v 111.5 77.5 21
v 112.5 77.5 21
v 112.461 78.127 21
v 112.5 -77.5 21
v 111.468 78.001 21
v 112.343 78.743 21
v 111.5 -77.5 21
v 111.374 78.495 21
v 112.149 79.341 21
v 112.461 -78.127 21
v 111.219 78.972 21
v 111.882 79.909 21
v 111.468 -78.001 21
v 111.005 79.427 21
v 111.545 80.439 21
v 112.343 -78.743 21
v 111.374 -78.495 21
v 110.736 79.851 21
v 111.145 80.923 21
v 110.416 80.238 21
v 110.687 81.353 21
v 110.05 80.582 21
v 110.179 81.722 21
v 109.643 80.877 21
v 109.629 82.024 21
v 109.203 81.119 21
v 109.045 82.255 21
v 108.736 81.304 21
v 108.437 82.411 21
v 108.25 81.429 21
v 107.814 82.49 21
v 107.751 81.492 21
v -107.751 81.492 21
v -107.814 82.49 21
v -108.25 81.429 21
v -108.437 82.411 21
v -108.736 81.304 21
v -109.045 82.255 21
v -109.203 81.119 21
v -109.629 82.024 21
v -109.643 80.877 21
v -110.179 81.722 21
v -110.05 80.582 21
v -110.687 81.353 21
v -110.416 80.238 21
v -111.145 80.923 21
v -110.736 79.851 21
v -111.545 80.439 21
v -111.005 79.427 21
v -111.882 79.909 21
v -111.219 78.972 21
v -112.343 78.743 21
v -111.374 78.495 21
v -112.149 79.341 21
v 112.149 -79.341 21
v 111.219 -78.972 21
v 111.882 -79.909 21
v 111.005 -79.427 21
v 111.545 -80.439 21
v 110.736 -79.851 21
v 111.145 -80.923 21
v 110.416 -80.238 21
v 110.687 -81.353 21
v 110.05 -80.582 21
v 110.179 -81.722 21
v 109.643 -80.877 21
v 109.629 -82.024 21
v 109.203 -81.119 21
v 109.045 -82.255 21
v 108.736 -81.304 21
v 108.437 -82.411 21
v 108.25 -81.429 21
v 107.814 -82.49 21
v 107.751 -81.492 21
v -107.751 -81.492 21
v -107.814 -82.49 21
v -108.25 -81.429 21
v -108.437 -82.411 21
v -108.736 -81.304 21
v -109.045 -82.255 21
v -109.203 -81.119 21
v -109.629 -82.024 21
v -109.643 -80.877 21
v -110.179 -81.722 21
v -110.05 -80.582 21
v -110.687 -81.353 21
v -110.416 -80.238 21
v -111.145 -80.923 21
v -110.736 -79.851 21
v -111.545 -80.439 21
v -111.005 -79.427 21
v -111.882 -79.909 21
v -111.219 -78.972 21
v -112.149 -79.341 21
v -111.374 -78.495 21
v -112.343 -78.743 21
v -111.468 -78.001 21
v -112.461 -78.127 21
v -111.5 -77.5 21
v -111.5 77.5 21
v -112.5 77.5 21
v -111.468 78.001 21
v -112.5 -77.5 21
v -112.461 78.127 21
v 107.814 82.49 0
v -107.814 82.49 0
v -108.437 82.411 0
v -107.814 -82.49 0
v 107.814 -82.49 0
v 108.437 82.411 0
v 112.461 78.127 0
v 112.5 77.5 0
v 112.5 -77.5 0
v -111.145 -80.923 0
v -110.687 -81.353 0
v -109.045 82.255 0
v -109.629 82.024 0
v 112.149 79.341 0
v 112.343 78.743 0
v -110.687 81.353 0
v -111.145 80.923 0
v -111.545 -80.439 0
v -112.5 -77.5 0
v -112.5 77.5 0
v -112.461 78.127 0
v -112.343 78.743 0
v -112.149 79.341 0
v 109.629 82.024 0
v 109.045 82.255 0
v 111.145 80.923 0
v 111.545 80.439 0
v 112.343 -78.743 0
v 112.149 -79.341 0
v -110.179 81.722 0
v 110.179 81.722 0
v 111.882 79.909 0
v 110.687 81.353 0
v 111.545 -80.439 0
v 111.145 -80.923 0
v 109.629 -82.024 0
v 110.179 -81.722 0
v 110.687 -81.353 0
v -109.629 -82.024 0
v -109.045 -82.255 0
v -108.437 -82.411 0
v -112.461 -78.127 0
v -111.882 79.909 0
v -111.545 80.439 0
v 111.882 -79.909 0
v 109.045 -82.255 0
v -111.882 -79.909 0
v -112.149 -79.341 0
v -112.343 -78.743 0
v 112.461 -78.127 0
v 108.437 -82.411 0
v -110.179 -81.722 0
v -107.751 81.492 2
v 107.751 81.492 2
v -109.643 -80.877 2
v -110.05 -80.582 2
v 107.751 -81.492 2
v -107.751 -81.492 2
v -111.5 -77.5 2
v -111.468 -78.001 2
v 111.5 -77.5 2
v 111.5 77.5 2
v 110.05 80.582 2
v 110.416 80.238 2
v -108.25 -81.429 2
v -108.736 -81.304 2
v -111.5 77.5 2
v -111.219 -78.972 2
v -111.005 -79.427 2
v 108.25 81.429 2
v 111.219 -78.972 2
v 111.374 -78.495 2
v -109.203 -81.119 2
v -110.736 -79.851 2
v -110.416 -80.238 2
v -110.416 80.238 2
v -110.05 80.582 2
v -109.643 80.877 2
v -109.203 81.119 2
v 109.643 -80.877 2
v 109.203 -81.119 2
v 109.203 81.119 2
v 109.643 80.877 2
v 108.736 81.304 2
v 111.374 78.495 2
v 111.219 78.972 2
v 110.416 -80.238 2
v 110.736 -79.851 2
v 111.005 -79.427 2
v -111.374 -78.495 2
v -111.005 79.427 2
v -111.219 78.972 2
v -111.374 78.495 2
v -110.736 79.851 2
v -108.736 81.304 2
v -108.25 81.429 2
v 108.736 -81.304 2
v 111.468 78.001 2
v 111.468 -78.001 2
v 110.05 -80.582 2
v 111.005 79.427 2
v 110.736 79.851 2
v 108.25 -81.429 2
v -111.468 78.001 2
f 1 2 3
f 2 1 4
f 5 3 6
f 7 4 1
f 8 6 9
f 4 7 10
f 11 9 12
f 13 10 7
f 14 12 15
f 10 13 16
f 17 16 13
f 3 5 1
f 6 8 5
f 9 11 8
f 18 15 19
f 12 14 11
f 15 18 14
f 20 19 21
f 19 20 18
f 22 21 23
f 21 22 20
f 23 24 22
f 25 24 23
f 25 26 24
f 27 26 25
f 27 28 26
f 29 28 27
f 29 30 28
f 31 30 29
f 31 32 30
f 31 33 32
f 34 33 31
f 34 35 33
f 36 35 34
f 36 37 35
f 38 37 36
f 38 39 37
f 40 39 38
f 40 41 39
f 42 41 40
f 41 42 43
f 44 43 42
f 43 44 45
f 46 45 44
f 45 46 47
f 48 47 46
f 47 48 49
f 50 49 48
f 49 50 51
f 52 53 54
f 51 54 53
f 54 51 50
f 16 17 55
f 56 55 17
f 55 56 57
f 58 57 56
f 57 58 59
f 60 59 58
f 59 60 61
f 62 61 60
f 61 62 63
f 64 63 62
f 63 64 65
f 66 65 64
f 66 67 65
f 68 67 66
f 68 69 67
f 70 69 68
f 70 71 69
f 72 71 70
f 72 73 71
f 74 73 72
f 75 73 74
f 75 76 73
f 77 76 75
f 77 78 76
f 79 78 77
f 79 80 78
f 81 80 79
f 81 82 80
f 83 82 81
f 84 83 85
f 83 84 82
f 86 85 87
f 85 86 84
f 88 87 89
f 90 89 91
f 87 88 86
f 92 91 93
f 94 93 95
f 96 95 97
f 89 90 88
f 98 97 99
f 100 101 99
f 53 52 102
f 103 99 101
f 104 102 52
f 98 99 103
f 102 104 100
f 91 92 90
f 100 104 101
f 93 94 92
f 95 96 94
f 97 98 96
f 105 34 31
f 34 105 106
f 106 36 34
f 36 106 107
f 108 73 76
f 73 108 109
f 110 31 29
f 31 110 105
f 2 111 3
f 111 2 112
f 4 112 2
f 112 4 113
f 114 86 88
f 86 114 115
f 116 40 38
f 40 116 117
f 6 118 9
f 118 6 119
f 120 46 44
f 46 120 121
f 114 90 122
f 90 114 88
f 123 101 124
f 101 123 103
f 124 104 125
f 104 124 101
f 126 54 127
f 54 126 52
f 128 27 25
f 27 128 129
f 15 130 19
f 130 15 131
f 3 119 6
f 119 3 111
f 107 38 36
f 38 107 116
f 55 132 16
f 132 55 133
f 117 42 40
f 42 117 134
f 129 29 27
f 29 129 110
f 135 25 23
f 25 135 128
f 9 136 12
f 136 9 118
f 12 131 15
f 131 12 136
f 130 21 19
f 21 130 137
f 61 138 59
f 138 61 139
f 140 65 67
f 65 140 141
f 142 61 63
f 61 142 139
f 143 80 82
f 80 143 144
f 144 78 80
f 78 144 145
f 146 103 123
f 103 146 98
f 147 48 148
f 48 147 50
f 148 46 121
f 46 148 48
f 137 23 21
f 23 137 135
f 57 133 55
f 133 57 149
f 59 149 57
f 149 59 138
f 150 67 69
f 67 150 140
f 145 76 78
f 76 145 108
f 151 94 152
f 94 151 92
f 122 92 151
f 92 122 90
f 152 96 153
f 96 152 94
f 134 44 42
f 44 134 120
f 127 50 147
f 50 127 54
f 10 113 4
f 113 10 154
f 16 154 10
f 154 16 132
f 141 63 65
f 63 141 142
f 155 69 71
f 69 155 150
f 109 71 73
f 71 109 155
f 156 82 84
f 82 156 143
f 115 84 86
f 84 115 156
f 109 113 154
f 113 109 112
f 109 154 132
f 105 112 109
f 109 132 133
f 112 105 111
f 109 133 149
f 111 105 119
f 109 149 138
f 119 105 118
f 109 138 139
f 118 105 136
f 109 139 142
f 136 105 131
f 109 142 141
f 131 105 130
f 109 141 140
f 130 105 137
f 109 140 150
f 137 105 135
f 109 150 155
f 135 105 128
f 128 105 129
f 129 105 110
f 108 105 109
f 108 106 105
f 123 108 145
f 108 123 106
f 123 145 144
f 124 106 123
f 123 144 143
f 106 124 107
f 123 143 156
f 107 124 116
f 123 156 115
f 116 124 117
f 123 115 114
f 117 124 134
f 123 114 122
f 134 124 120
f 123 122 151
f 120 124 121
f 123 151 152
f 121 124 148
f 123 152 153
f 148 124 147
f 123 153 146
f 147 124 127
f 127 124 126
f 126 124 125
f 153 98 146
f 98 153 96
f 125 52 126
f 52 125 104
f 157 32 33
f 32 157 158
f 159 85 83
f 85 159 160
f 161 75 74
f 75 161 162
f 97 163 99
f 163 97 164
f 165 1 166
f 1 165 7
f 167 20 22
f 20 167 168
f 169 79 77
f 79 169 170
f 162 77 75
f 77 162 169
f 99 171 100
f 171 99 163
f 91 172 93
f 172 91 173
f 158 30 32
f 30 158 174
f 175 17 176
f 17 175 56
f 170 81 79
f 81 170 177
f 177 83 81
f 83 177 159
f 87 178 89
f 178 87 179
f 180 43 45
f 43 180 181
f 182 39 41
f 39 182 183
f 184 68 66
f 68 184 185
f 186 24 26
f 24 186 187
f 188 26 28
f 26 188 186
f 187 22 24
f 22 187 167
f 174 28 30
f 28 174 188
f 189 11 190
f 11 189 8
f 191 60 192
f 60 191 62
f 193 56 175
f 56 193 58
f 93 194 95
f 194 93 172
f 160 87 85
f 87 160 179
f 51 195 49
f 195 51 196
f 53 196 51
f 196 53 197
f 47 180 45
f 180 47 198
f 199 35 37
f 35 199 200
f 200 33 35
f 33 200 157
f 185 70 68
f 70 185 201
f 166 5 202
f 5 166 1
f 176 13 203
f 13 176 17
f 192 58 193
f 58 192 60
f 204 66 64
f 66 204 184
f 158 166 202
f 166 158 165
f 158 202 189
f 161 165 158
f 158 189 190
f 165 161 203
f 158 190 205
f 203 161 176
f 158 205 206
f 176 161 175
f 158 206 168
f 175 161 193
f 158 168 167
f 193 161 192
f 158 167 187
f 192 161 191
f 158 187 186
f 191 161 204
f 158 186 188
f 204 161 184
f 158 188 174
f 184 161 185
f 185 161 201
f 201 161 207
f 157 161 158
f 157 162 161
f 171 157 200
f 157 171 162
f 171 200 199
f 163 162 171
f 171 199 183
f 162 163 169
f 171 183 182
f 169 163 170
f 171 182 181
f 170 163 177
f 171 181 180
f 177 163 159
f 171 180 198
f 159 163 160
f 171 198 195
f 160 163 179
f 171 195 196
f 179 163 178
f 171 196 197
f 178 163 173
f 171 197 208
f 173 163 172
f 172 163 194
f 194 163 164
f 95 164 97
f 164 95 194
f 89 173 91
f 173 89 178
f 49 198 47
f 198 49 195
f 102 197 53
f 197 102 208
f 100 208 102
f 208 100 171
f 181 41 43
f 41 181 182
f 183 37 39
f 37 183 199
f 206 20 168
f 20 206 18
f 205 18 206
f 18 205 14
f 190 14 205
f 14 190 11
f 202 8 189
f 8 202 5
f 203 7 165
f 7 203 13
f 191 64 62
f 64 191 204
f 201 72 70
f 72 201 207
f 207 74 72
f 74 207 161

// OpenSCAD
$fn = 50;


difference() {
	union() {
		hull() {
			translate(v = [-107.5000000000, 77.5000000000, 0]) {
				cylinder(h = 21, r = 5);
			}
			translate(v = [107.5000000000, 77.5000000000, 0]) {
				cylinder(h = 21, r = 5);
			}
			translate(v = [-107.5000000000, -77.5000000000, 0]) {
				cylinder(h = 21, r = 5);
			}
			translate(v = [107.5000000000, -77.5000000000, 0]) {
				cylinder(h = 21, r = 5);
			}
		}
	}
	union() {
		translate(v = [0, 0, 2]) {
			hull() {
				translate(v = [-107.5000000000, 77.5000000000, 0]) {
					cylinder(h = 19, r = 4);
				}
				translate(v = [107.5000000000, 77.5000000000, 0]) {
					cylinder(h = 19, r = 4);
				}
				translate(v = [-107.5000000000, -77.5000000000, 0]) {
					cylinder(h = 19, r = 4);
				}
				translate(v = [107.5000000000, -77.5000000000, 0]) {
					cylinder(h = 19, r = 4);
				}
			}
		}
	}
}
